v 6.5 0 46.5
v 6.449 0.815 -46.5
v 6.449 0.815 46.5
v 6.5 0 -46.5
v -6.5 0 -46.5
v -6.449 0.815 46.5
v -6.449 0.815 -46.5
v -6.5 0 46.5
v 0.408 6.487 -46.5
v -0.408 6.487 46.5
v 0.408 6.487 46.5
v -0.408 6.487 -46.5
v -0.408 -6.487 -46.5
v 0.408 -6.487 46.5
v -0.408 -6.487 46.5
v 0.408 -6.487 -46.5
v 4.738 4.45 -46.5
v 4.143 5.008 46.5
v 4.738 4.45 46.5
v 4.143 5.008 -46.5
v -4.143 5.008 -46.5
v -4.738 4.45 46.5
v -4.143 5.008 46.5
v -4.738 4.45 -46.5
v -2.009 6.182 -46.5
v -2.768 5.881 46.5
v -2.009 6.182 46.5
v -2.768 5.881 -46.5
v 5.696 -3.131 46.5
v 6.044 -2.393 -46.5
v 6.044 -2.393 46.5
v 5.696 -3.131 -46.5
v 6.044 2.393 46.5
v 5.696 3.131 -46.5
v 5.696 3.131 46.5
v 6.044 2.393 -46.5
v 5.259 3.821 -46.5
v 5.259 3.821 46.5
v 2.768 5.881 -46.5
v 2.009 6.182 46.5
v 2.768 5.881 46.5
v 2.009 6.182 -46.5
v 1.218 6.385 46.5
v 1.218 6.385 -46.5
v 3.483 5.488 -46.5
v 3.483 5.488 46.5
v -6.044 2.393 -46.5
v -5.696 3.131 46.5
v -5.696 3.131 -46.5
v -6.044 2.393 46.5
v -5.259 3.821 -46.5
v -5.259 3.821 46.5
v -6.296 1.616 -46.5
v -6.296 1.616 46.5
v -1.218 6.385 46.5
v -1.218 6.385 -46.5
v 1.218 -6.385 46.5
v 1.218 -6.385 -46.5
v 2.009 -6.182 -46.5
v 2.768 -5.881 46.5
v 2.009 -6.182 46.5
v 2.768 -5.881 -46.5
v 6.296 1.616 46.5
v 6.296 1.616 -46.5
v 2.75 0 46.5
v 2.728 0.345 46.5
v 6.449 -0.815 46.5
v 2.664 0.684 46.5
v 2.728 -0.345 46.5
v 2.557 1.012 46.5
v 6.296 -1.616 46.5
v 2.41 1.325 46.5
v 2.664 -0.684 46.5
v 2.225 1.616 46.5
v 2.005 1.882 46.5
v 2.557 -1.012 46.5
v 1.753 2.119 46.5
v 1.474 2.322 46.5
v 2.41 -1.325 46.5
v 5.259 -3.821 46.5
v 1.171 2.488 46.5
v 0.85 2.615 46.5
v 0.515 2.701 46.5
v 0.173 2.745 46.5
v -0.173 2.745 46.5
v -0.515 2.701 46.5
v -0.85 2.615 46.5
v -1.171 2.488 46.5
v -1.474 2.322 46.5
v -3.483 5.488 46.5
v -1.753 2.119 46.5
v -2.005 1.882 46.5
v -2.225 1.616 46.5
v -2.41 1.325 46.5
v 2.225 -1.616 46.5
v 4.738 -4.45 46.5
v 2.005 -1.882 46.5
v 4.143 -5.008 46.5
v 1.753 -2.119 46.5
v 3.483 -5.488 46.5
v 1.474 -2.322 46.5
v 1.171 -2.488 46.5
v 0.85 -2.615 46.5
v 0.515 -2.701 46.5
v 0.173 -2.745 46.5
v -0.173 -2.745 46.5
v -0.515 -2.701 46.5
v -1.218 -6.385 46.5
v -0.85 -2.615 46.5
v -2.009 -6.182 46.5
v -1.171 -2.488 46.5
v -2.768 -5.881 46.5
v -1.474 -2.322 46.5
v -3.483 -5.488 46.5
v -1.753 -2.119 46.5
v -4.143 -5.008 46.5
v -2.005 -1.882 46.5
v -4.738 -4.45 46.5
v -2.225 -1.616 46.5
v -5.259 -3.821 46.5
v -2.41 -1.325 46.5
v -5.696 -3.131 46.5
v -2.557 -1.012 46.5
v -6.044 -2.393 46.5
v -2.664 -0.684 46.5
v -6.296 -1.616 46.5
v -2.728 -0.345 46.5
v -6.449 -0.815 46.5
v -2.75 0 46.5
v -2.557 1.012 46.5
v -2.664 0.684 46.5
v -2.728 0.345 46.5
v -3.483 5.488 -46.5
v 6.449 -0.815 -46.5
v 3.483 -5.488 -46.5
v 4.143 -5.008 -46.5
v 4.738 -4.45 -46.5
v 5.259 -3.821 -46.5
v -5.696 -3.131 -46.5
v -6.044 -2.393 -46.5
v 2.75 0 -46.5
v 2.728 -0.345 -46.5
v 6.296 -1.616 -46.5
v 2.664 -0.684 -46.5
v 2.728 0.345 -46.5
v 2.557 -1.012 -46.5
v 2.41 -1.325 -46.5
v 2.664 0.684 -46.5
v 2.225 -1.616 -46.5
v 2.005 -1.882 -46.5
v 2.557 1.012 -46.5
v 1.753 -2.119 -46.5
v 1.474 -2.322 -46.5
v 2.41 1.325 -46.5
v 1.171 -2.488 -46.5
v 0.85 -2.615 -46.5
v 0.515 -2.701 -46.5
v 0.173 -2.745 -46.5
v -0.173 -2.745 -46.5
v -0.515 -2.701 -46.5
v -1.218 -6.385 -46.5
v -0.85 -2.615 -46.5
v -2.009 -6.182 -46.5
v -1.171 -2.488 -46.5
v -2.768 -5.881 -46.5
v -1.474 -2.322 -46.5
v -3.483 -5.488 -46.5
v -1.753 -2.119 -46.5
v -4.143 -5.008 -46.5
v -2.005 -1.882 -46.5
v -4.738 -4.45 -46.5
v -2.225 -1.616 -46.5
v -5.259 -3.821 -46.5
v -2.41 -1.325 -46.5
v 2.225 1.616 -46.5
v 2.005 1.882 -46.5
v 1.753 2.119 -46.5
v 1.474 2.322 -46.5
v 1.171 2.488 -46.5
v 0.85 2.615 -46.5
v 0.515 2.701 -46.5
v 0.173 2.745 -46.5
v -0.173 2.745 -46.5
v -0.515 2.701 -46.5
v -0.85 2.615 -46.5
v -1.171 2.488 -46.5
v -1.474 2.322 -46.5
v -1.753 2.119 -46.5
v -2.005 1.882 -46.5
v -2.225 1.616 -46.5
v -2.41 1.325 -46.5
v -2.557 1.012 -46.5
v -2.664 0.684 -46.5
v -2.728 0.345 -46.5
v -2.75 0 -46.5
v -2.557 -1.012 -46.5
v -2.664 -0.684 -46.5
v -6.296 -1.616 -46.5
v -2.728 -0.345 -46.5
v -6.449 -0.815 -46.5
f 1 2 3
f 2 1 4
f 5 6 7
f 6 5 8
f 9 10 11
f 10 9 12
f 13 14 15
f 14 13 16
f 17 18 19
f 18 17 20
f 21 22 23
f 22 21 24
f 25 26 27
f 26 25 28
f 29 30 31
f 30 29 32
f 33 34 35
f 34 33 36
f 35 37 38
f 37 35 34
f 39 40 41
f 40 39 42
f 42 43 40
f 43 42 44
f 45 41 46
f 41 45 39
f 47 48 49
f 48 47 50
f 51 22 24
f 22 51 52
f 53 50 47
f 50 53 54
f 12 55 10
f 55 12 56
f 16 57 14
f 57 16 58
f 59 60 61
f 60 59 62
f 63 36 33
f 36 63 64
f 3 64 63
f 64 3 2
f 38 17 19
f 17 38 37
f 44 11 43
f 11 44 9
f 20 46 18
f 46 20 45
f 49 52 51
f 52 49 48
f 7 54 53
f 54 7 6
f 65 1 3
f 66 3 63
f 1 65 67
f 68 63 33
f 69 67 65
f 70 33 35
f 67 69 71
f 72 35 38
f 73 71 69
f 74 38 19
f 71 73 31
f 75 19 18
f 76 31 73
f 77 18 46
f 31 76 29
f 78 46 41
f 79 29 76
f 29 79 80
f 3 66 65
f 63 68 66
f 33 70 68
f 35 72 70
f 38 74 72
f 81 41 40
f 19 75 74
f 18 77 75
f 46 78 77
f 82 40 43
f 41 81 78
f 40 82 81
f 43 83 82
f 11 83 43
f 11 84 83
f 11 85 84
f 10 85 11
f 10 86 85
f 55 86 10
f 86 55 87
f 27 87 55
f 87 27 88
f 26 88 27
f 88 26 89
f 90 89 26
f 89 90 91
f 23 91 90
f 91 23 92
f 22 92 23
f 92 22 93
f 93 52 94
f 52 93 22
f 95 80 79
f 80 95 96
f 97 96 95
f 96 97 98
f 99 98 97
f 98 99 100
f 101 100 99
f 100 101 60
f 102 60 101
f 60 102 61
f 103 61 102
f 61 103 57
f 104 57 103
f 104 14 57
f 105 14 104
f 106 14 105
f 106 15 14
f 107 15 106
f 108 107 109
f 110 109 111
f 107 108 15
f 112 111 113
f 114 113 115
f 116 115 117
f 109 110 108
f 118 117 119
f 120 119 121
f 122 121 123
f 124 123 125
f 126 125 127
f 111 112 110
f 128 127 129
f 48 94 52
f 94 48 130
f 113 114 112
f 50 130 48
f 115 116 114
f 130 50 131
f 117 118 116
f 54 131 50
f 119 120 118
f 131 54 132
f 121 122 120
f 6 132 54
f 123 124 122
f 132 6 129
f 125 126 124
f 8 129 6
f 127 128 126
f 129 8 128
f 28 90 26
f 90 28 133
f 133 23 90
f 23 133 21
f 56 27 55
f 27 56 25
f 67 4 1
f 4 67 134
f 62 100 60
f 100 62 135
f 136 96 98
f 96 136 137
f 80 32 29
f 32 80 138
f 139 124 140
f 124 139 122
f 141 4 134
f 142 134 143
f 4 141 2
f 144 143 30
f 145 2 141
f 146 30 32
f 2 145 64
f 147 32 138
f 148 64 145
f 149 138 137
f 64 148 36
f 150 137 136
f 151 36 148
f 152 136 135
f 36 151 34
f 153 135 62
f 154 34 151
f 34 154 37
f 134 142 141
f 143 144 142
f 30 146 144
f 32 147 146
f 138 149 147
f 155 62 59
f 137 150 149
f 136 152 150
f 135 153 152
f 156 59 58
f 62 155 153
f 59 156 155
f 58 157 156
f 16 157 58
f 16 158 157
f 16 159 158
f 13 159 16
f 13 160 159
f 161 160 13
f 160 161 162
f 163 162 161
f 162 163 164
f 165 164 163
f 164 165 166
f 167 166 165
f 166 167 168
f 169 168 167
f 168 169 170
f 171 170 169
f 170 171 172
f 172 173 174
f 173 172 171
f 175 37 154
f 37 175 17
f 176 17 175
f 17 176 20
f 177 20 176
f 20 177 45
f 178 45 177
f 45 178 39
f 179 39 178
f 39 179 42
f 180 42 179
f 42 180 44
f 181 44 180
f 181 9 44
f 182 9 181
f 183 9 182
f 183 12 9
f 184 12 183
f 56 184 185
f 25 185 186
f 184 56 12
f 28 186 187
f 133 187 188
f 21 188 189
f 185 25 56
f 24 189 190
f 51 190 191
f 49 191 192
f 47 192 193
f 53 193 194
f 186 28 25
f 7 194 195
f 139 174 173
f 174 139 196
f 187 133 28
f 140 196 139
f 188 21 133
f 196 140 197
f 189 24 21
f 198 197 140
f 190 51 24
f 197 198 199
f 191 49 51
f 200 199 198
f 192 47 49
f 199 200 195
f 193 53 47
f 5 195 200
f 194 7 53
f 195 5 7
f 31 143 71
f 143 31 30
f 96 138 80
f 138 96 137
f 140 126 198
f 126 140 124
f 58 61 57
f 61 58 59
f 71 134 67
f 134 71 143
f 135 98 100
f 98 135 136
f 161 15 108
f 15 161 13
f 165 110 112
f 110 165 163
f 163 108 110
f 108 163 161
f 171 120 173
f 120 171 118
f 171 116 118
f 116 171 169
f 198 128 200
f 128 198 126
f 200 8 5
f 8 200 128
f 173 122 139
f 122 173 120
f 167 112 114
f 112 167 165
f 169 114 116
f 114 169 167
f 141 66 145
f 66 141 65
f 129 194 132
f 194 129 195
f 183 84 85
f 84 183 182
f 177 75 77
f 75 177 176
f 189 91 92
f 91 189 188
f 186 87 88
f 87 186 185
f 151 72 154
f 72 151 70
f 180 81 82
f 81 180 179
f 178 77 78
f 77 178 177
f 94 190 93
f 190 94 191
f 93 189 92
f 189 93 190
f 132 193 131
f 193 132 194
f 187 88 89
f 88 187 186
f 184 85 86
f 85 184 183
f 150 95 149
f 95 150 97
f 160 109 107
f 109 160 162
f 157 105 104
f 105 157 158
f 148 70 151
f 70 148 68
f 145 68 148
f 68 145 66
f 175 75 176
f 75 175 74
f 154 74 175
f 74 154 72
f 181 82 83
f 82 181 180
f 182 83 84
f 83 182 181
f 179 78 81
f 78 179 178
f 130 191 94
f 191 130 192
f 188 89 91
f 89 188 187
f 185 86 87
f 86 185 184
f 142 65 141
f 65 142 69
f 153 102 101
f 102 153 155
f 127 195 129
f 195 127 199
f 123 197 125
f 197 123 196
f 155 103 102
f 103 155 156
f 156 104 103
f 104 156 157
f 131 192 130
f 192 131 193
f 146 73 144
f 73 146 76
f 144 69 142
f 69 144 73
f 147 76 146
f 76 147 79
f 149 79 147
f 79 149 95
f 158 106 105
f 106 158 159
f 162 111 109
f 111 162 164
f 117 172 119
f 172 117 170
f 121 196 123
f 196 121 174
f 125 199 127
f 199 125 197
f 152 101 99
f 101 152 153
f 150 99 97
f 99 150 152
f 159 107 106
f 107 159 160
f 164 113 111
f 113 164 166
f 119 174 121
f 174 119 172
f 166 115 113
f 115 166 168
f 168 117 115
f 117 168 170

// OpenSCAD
$fn = 50;


difference() {
	union() {
		translate(v = [0, 0, -46.5000000000]) {
			cylinder(h = 93, r = 6.5000000000);
		}
	}
	union() {
		translate(v = [0, 0, -100.0000000000]) {
			cylinder(h = 200, r = 2.7500000000);
		}
	}
}
